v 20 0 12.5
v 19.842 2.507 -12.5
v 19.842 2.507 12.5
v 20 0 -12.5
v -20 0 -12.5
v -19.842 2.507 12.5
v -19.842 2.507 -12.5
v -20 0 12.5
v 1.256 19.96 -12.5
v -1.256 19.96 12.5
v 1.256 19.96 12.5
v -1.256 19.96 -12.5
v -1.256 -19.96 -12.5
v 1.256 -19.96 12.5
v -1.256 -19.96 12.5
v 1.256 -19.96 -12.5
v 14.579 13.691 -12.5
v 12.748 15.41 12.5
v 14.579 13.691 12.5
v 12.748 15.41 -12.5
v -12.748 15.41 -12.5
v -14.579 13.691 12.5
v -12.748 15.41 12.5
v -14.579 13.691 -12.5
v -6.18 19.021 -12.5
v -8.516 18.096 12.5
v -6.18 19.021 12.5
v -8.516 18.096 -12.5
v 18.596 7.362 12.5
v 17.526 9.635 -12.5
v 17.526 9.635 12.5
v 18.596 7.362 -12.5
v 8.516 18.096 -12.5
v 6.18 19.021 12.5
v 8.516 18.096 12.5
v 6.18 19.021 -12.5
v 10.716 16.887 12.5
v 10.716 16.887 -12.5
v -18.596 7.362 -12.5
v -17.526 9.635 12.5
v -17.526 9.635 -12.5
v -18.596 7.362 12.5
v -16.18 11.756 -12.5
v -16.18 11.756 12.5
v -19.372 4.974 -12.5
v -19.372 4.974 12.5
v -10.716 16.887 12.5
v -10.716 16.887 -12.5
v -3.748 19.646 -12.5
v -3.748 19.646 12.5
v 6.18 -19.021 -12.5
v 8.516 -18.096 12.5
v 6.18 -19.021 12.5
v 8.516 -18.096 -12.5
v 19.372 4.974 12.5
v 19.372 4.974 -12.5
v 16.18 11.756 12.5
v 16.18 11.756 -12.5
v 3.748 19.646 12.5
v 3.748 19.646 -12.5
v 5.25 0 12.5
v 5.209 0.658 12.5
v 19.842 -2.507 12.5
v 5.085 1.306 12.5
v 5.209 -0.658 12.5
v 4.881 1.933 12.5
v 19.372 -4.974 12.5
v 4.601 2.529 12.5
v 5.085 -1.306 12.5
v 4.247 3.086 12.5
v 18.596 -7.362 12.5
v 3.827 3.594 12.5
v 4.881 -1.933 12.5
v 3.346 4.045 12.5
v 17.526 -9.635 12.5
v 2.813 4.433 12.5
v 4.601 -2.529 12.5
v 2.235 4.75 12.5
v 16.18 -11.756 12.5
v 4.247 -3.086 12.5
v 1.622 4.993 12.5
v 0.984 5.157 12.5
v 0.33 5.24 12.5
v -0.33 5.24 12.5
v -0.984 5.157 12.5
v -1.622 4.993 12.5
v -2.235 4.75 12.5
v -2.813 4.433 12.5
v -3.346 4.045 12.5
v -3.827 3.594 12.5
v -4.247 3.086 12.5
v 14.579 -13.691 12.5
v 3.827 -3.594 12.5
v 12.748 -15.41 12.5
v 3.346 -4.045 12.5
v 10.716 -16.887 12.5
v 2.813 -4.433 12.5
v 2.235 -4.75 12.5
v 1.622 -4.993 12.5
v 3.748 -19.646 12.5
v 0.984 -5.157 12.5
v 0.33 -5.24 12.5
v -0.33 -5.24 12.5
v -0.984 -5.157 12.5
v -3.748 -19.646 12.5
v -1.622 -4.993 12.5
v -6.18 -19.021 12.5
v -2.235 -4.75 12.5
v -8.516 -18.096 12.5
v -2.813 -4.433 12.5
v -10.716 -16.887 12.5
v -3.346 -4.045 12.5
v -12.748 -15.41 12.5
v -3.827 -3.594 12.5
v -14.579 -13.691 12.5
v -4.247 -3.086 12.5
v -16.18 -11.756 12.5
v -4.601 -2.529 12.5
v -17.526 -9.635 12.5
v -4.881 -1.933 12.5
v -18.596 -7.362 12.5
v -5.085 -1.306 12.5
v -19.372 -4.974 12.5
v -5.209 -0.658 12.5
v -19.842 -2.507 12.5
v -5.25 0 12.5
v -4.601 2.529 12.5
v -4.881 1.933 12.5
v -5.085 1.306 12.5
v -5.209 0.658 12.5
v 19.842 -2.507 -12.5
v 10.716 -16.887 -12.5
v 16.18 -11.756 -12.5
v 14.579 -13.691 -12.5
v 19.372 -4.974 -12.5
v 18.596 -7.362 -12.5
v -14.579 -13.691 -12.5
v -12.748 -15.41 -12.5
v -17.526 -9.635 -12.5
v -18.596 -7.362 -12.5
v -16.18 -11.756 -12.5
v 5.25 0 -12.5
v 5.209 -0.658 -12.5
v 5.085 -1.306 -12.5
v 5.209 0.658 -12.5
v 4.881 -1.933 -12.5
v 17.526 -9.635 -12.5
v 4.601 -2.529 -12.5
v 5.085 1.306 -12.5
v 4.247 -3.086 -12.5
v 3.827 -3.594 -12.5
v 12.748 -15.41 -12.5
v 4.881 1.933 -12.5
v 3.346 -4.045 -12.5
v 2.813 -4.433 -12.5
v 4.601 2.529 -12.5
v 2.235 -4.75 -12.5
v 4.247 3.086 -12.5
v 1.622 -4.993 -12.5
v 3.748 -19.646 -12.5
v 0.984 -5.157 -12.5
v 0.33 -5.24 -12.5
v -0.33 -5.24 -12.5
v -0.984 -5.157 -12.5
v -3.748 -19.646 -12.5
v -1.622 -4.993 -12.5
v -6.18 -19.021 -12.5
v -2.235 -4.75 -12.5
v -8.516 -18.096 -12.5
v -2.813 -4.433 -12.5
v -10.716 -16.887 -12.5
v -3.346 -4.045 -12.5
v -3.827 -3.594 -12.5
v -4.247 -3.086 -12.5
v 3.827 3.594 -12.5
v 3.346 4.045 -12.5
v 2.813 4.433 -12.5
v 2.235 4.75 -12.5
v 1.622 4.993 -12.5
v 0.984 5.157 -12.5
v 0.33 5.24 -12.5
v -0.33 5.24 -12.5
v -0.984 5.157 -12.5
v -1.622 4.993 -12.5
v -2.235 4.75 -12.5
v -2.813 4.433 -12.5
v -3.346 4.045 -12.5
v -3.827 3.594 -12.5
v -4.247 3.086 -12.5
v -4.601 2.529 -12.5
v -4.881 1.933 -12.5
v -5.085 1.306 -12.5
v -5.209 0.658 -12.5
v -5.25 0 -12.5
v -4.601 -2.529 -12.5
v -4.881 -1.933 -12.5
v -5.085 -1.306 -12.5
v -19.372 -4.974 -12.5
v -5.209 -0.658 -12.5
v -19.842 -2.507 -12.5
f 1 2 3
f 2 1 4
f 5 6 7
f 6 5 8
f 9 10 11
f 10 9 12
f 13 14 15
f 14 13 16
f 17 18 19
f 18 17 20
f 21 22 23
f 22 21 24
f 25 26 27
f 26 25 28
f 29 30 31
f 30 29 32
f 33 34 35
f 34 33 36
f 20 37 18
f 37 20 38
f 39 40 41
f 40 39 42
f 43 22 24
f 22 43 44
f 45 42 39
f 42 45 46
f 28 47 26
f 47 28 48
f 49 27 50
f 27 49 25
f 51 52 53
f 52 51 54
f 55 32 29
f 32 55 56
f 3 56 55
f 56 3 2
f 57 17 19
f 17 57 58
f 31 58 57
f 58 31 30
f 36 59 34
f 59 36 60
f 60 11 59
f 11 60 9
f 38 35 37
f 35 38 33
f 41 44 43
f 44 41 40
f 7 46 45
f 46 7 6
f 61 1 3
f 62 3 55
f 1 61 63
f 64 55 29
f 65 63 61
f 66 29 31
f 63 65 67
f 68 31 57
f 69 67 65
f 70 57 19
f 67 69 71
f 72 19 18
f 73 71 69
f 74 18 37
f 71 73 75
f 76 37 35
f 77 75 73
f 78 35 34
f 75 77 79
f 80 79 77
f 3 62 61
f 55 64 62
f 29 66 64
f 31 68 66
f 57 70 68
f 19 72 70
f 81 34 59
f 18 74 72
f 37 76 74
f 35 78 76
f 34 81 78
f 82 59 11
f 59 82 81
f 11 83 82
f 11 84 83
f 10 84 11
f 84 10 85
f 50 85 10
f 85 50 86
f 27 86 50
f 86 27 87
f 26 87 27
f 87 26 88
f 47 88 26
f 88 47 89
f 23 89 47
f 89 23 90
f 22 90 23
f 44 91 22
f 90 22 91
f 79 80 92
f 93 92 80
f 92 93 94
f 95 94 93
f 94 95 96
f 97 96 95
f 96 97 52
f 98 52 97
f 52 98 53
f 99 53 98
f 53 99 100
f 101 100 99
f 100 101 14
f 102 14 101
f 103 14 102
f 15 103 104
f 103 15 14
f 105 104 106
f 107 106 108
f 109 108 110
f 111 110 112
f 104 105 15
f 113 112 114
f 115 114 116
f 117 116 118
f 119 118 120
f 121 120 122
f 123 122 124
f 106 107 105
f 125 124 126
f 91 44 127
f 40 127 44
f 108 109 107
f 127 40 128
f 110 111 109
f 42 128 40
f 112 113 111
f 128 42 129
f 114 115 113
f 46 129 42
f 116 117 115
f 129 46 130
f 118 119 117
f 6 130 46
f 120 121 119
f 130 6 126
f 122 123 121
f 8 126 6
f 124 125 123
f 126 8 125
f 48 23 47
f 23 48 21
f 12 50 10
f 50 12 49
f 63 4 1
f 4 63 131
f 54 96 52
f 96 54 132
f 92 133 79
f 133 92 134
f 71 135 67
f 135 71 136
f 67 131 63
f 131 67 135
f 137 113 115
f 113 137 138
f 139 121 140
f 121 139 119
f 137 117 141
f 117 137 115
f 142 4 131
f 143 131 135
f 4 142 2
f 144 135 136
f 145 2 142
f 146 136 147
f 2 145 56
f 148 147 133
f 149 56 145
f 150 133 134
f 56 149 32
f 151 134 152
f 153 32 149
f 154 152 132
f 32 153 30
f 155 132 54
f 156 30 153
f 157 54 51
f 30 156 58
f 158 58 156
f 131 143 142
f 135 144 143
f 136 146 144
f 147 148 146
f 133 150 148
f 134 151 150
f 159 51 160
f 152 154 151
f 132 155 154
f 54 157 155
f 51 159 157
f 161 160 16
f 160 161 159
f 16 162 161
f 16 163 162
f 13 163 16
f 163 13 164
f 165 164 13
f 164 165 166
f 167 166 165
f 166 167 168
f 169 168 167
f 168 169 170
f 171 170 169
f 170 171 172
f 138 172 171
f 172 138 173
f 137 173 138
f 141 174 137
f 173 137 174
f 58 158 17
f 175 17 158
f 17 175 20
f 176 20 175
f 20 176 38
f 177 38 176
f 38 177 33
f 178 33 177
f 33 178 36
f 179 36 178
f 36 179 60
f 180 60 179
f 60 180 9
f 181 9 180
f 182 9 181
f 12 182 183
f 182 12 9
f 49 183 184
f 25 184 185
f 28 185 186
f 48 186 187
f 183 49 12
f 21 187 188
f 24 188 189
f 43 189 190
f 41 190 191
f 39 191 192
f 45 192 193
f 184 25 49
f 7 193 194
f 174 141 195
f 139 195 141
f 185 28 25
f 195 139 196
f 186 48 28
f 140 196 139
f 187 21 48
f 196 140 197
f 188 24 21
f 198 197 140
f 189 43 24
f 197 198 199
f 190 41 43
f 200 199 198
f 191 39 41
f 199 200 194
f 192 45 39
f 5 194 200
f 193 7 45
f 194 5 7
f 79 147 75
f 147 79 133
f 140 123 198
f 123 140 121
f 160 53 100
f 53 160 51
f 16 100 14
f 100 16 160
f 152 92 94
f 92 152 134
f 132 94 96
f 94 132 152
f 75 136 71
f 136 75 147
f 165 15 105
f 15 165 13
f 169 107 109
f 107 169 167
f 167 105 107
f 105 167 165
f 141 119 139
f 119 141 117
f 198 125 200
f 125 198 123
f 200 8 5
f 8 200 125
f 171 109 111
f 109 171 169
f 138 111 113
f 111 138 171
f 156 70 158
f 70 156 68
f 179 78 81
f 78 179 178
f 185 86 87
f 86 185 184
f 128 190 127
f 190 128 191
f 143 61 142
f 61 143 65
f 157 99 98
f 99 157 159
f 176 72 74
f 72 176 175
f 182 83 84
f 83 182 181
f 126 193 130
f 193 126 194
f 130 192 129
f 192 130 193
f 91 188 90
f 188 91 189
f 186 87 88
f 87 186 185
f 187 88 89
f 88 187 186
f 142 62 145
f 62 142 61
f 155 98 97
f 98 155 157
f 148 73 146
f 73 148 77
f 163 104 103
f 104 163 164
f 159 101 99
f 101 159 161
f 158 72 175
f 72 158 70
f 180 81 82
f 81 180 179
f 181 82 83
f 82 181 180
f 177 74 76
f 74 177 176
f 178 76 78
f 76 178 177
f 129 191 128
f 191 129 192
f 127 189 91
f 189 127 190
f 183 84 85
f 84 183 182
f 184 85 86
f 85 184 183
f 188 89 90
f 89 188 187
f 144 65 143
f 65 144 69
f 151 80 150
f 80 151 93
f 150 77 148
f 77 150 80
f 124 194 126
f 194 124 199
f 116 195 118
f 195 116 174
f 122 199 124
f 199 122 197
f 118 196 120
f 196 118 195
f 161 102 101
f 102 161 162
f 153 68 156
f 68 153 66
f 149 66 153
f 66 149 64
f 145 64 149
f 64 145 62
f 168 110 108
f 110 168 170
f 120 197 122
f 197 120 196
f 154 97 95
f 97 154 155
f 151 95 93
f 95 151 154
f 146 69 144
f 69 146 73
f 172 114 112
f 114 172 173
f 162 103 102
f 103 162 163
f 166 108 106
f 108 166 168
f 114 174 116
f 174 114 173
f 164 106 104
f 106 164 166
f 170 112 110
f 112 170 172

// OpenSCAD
$fn = 50;


difference() {
	union() {
		translate(v = [0, 0, -12.5000000000]) {
			cylinder(h = 25, r = 20.0000000000);
		}
	}
	union() {
		translate(v = [0, 0, -100.0000000000]) {
			cylinder(h = 200, r = 5.2500000000);
		}
	}
}
